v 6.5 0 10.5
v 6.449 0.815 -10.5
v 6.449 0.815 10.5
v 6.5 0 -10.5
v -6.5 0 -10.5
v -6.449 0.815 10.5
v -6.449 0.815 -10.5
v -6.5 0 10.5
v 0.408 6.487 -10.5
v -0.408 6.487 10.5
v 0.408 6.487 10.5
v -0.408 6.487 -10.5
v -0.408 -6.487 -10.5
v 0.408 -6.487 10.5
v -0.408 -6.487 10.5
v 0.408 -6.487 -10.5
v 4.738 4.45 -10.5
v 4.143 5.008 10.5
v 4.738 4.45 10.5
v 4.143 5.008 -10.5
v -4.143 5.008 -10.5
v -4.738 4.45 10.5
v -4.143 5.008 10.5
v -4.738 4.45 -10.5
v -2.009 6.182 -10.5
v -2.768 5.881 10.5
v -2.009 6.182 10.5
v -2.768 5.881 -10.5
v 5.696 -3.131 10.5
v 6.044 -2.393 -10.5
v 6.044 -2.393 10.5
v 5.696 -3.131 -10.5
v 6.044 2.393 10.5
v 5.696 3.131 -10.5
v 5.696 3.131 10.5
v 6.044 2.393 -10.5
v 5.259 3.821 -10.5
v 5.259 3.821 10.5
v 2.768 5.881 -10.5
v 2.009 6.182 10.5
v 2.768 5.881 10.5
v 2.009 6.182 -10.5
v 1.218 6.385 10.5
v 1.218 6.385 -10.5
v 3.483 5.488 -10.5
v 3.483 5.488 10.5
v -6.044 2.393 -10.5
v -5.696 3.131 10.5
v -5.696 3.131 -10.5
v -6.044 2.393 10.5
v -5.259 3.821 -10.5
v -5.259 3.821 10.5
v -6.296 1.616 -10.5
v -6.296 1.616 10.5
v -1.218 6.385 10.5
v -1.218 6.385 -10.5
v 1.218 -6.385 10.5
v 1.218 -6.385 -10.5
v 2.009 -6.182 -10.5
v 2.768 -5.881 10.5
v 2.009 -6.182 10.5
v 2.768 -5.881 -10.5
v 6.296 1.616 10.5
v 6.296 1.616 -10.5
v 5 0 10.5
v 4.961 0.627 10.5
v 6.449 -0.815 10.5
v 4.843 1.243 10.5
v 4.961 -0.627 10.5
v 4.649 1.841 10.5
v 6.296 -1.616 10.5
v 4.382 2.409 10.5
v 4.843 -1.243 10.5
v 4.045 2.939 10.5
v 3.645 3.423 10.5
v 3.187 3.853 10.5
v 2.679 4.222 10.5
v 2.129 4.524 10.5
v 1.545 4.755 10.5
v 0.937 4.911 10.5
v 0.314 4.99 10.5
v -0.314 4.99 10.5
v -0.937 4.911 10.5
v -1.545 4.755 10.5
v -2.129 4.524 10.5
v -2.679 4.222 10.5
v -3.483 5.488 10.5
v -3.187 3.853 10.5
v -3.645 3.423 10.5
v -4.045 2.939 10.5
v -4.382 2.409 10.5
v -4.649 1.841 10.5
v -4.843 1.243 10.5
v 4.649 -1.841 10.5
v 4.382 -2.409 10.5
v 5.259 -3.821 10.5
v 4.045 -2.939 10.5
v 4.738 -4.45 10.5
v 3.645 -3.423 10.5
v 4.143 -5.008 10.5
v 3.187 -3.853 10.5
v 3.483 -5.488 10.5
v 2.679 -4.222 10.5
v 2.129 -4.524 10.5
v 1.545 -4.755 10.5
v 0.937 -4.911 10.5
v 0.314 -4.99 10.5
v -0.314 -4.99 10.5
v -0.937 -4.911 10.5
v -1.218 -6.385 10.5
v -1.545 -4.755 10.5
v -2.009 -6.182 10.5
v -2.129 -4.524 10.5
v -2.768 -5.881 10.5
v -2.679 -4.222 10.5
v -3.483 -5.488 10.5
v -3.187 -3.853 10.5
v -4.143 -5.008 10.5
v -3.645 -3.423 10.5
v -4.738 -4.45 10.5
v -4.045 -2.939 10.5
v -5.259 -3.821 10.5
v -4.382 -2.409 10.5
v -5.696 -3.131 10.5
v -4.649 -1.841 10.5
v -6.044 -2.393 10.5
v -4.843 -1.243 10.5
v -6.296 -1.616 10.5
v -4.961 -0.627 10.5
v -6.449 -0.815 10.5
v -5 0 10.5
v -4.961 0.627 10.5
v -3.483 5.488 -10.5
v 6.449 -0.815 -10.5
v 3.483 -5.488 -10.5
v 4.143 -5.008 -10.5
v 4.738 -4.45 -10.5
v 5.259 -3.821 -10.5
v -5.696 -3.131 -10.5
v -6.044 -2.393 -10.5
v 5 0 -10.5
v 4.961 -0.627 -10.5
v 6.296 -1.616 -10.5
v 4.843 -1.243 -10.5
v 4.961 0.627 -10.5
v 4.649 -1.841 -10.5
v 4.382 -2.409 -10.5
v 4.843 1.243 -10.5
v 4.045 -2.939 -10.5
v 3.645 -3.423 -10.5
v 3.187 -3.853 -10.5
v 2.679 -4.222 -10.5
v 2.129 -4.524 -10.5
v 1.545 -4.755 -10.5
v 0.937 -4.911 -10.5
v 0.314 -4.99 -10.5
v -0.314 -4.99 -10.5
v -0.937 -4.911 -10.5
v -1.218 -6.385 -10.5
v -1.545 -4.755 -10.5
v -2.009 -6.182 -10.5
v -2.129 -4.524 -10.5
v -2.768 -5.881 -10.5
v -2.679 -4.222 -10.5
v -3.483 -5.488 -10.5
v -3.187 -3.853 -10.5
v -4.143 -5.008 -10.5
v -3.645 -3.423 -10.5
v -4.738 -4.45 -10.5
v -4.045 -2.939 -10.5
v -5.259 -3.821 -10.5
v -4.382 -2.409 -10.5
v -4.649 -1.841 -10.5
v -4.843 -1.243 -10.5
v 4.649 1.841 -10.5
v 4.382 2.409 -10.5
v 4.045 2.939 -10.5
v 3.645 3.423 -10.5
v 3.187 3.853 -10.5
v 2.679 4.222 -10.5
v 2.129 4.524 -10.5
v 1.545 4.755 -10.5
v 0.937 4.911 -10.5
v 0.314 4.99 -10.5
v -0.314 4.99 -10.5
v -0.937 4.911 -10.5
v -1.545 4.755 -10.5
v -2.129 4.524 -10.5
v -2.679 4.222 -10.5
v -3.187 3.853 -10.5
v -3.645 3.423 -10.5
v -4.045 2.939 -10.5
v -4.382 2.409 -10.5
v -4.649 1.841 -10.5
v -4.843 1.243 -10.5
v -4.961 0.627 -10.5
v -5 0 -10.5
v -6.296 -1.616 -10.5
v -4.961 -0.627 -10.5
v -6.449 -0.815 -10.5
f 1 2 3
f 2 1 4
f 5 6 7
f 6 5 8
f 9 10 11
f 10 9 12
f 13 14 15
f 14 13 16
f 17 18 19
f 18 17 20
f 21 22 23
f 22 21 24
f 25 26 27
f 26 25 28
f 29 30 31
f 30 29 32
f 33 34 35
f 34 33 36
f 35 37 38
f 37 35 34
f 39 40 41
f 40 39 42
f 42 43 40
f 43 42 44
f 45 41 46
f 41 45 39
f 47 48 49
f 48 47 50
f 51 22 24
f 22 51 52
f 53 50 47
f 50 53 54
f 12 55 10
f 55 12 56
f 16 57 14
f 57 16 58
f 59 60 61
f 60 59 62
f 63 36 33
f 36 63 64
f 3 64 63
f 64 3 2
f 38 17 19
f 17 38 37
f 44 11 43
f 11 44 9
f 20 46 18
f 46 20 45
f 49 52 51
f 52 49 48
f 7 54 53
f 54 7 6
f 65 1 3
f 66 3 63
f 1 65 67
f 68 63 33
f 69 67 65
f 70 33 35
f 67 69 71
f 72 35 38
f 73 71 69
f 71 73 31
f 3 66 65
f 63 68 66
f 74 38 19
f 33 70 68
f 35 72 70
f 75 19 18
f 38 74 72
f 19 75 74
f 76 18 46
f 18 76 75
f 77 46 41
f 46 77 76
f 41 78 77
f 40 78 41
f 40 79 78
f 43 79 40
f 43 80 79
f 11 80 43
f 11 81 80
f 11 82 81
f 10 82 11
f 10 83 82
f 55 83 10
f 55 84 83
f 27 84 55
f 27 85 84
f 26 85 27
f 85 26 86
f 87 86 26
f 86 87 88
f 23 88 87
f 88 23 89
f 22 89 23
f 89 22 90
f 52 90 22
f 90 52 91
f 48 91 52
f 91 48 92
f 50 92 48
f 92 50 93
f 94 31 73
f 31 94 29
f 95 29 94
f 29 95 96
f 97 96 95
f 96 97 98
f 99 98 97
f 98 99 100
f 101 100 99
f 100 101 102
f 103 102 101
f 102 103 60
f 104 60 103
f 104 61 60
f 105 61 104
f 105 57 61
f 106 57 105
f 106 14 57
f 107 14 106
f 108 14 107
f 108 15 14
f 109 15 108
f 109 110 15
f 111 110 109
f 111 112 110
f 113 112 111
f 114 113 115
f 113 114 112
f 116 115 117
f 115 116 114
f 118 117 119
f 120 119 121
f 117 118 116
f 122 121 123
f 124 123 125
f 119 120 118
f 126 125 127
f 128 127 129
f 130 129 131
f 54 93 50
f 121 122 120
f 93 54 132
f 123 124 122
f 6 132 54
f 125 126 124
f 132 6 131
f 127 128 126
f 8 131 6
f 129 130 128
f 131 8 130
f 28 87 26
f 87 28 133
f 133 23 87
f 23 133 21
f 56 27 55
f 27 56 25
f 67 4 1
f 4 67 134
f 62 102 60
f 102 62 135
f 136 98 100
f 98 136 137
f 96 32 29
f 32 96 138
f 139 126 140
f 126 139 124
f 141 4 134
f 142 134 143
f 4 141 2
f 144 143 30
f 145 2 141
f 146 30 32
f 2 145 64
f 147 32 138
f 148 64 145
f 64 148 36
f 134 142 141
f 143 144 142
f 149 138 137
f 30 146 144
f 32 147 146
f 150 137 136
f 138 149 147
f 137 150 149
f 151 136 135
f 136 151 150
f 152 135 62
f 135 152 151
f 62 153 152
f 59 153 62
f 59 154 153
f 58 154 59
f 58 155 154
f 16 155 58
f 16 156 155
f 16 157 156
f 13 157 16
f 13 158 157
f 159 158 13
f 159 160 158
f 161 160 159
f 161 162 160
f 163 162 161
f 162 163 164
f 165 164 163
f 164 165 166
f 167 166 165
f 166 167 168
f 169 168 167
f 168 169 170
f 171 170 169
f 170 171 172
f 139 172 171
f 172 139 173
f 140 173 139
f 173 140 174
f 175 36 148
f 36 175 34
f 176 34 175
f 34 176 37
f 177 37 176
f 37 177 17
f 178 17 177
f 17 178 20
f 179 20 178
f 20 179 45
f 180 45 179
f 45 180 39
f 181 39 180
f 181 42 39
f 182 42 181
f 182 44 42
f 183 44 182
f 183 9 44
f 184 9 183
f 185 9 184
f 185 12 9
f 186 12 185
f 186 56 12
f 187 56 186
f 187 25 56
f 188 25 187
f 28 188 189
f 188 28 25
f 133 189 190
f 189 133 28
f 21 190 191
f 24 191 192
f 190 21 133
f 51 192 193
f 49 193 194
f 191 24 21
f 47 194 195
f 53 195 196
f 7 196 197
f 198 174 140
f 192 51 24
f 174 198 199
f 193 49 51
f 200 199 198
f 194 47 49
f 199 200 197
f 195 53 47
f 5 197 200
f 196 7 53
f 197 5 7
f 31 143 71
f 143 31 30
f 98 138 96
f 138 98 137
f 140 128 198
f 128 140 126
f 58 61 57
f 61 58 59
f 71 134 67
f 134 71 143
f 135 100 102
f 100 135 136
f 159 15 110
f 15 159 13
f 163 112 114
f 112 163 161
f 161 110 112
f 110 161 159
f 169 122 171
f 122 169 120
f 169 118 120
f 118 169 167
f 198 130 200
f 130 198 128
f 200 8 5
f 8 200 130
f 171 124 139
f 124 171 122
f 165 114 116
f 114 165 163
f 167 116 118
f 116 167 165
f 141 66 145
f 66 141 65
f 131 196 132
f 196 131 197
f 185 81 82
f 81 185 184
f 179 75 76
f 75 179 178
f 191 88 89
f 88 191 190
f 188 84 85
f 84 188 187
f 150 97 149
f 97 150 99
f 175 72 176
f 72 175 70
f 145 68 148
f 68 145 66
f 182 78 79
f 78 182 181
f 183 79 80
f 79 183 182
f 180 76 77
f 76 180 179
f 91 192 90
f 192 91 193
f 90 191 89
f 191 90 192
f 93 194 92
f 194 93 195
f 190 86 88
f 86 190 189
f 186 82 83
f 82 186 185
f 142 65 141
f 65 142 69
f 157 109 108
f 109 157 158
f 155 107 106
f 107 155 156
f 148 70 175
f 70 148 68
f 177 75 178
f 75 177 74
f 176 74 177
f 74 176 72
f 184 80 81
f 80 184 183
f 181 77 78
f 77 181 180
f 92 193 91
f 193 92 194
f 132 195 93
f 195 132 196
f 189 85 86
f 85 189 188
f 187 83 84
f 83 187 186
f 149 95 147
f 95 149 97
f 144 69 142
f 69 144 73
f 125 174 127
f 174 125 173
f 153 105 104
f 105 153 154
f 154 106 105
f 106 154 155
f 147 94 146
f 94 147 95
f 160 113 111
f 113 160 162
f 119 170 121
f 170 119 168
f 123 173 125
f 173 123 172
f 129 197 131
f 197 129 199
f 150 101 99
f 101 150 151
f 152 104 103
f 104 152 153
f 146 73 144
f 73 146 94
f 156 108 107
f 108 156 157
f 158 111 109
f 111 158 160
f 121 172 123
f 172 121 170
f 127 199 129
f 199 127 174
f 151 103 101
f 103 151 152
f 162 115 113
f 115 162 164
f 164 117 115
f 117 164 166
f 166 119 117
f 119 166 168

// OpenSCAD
$fn = 50;


difference() {
	union() {
		translate(v = [0, 0, -10.5000000000]) {
			cylinder(h = 21, r = 6.5000000000);
		}
	}
	union() {
		translate(v = [0, 0, -100.0000000000]) {
			cylinder(h = 200, r = 5);
		}
	}
}
